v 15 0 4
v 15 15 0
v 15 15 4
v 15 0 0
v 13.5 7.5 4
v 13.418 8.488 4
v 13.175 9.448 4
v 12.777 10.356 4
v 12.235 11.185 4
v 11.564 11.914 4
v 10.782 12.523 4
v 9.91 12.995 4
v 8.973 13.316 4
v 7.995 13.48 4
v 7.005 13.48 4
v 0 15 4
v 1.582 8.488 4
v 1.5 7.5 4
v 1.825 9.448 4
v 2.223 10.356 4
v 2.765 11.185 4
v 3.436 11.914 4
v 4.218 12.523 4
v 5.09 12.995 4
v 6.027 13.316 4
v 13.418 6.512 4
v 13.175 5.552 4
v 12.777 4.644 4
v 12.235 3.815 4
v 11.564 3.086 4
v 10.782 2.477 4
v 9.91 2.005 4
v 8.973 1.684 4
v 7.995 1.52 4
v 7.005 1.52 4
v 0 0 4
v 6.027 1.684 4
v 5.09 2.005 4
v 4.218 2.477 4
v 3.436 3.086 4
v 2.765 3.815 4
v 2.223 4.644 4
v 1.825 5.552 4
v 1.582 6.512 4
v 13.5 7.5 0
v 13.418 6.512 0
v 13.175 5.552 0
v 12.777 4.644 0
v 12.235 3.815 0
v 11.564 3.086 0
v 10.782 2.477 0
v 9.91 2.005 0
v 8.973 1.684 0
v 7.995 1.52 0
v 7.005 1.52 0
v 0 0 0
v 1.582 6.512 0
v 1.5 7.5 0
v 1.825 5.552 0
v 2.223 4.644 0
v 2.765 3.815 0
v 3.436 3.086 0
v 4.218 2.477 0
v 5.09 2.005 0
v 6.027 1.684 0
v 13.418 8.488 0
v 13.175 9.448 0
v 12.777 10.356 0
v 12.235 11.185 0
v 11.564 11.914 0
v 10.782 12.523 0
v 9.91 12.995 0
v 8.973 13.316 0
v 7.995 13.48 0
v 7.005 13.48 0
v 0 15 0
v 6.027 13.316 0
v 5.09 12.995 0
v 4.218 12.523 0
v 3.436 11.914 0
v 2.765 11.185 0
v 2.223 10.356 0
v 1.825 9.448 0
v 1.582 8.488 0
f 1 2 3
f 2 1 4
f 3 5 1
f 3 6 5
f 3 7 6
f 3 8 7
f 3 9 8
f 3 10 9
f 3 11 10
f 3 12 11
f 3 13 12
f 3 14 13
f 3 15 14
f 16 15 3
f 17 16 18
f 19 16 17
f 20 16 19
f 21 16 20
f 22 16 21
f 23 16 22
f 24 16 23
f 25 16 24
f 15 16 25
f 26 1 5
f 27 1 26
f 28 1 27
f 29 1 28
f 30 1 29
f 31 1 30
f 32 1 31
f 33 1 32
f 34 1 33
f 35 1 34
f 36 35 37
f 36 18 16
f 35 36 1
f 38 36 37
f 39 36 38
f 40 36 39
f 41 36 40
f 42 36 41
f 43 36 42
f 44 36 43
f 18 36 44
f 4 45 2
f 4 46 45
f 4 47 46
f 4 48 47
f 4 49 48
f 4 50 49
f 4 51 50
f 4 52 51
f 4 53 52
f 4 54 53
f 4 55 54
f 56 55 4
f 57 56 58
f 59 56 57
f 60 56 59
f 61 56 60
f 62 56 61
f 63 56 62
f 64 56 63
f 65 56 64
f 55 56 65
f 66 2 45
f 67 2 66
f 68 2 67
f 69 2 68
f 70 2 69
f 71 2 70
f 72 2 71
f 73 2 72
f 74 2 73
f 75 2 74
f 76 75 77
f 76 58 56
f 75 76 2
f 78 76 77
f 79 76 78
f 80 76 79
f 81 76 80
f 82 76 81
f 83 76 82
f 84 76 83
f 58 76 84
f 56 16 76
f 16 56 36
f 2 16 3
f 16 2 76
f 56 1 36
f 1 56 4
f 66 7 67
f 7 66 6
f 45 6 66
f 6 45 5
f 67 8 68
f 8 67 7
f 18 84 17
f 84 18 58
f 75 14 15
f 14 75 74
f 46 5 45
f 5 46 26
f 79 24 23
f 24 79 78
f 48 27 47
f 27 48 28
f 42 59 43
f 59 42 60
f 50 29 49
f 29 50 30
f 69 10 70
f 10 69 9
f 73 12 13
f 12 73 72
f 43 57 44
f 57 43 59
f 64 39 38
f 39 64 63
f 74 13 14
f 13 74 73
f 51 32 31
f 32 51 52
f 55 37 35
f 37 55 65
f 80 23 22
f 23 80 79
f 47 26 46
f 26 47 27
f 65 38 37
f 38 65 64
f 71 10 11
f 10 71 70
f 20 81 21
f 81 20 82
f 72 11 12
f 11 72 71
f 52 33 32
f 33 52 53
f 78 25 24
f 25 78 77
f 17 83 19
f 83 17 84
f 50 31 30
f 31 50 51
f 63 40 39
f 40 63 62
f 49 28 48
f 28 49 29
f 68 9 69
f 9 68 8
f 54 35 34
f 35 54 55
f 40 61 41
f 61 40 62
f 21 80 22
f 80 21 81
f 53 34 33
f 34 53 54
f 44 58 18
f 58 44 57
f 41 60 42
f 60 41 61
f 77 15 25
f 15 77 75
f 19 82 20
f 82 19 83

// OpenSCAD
/**
 *	A small shape to quickly test pause and resume functionality of printerX
 *
 **/

// Render quality settings
$fs = 1;
$fa = 0.1;

cubeXYDimension = 15;
cubeHeight = 4;
cutoutDiameter = 12;

difference()
{
	{
		cube( [cubeXYDimension, cubeXYDimension, cubeHeight] );
	}
	{
		translate( [(cubeXYDimension/2), (cubeXYDimension/2), -1] ) cylinder( d = cutoutDiameter, h = cubeHeight + 2 );
	}
}
